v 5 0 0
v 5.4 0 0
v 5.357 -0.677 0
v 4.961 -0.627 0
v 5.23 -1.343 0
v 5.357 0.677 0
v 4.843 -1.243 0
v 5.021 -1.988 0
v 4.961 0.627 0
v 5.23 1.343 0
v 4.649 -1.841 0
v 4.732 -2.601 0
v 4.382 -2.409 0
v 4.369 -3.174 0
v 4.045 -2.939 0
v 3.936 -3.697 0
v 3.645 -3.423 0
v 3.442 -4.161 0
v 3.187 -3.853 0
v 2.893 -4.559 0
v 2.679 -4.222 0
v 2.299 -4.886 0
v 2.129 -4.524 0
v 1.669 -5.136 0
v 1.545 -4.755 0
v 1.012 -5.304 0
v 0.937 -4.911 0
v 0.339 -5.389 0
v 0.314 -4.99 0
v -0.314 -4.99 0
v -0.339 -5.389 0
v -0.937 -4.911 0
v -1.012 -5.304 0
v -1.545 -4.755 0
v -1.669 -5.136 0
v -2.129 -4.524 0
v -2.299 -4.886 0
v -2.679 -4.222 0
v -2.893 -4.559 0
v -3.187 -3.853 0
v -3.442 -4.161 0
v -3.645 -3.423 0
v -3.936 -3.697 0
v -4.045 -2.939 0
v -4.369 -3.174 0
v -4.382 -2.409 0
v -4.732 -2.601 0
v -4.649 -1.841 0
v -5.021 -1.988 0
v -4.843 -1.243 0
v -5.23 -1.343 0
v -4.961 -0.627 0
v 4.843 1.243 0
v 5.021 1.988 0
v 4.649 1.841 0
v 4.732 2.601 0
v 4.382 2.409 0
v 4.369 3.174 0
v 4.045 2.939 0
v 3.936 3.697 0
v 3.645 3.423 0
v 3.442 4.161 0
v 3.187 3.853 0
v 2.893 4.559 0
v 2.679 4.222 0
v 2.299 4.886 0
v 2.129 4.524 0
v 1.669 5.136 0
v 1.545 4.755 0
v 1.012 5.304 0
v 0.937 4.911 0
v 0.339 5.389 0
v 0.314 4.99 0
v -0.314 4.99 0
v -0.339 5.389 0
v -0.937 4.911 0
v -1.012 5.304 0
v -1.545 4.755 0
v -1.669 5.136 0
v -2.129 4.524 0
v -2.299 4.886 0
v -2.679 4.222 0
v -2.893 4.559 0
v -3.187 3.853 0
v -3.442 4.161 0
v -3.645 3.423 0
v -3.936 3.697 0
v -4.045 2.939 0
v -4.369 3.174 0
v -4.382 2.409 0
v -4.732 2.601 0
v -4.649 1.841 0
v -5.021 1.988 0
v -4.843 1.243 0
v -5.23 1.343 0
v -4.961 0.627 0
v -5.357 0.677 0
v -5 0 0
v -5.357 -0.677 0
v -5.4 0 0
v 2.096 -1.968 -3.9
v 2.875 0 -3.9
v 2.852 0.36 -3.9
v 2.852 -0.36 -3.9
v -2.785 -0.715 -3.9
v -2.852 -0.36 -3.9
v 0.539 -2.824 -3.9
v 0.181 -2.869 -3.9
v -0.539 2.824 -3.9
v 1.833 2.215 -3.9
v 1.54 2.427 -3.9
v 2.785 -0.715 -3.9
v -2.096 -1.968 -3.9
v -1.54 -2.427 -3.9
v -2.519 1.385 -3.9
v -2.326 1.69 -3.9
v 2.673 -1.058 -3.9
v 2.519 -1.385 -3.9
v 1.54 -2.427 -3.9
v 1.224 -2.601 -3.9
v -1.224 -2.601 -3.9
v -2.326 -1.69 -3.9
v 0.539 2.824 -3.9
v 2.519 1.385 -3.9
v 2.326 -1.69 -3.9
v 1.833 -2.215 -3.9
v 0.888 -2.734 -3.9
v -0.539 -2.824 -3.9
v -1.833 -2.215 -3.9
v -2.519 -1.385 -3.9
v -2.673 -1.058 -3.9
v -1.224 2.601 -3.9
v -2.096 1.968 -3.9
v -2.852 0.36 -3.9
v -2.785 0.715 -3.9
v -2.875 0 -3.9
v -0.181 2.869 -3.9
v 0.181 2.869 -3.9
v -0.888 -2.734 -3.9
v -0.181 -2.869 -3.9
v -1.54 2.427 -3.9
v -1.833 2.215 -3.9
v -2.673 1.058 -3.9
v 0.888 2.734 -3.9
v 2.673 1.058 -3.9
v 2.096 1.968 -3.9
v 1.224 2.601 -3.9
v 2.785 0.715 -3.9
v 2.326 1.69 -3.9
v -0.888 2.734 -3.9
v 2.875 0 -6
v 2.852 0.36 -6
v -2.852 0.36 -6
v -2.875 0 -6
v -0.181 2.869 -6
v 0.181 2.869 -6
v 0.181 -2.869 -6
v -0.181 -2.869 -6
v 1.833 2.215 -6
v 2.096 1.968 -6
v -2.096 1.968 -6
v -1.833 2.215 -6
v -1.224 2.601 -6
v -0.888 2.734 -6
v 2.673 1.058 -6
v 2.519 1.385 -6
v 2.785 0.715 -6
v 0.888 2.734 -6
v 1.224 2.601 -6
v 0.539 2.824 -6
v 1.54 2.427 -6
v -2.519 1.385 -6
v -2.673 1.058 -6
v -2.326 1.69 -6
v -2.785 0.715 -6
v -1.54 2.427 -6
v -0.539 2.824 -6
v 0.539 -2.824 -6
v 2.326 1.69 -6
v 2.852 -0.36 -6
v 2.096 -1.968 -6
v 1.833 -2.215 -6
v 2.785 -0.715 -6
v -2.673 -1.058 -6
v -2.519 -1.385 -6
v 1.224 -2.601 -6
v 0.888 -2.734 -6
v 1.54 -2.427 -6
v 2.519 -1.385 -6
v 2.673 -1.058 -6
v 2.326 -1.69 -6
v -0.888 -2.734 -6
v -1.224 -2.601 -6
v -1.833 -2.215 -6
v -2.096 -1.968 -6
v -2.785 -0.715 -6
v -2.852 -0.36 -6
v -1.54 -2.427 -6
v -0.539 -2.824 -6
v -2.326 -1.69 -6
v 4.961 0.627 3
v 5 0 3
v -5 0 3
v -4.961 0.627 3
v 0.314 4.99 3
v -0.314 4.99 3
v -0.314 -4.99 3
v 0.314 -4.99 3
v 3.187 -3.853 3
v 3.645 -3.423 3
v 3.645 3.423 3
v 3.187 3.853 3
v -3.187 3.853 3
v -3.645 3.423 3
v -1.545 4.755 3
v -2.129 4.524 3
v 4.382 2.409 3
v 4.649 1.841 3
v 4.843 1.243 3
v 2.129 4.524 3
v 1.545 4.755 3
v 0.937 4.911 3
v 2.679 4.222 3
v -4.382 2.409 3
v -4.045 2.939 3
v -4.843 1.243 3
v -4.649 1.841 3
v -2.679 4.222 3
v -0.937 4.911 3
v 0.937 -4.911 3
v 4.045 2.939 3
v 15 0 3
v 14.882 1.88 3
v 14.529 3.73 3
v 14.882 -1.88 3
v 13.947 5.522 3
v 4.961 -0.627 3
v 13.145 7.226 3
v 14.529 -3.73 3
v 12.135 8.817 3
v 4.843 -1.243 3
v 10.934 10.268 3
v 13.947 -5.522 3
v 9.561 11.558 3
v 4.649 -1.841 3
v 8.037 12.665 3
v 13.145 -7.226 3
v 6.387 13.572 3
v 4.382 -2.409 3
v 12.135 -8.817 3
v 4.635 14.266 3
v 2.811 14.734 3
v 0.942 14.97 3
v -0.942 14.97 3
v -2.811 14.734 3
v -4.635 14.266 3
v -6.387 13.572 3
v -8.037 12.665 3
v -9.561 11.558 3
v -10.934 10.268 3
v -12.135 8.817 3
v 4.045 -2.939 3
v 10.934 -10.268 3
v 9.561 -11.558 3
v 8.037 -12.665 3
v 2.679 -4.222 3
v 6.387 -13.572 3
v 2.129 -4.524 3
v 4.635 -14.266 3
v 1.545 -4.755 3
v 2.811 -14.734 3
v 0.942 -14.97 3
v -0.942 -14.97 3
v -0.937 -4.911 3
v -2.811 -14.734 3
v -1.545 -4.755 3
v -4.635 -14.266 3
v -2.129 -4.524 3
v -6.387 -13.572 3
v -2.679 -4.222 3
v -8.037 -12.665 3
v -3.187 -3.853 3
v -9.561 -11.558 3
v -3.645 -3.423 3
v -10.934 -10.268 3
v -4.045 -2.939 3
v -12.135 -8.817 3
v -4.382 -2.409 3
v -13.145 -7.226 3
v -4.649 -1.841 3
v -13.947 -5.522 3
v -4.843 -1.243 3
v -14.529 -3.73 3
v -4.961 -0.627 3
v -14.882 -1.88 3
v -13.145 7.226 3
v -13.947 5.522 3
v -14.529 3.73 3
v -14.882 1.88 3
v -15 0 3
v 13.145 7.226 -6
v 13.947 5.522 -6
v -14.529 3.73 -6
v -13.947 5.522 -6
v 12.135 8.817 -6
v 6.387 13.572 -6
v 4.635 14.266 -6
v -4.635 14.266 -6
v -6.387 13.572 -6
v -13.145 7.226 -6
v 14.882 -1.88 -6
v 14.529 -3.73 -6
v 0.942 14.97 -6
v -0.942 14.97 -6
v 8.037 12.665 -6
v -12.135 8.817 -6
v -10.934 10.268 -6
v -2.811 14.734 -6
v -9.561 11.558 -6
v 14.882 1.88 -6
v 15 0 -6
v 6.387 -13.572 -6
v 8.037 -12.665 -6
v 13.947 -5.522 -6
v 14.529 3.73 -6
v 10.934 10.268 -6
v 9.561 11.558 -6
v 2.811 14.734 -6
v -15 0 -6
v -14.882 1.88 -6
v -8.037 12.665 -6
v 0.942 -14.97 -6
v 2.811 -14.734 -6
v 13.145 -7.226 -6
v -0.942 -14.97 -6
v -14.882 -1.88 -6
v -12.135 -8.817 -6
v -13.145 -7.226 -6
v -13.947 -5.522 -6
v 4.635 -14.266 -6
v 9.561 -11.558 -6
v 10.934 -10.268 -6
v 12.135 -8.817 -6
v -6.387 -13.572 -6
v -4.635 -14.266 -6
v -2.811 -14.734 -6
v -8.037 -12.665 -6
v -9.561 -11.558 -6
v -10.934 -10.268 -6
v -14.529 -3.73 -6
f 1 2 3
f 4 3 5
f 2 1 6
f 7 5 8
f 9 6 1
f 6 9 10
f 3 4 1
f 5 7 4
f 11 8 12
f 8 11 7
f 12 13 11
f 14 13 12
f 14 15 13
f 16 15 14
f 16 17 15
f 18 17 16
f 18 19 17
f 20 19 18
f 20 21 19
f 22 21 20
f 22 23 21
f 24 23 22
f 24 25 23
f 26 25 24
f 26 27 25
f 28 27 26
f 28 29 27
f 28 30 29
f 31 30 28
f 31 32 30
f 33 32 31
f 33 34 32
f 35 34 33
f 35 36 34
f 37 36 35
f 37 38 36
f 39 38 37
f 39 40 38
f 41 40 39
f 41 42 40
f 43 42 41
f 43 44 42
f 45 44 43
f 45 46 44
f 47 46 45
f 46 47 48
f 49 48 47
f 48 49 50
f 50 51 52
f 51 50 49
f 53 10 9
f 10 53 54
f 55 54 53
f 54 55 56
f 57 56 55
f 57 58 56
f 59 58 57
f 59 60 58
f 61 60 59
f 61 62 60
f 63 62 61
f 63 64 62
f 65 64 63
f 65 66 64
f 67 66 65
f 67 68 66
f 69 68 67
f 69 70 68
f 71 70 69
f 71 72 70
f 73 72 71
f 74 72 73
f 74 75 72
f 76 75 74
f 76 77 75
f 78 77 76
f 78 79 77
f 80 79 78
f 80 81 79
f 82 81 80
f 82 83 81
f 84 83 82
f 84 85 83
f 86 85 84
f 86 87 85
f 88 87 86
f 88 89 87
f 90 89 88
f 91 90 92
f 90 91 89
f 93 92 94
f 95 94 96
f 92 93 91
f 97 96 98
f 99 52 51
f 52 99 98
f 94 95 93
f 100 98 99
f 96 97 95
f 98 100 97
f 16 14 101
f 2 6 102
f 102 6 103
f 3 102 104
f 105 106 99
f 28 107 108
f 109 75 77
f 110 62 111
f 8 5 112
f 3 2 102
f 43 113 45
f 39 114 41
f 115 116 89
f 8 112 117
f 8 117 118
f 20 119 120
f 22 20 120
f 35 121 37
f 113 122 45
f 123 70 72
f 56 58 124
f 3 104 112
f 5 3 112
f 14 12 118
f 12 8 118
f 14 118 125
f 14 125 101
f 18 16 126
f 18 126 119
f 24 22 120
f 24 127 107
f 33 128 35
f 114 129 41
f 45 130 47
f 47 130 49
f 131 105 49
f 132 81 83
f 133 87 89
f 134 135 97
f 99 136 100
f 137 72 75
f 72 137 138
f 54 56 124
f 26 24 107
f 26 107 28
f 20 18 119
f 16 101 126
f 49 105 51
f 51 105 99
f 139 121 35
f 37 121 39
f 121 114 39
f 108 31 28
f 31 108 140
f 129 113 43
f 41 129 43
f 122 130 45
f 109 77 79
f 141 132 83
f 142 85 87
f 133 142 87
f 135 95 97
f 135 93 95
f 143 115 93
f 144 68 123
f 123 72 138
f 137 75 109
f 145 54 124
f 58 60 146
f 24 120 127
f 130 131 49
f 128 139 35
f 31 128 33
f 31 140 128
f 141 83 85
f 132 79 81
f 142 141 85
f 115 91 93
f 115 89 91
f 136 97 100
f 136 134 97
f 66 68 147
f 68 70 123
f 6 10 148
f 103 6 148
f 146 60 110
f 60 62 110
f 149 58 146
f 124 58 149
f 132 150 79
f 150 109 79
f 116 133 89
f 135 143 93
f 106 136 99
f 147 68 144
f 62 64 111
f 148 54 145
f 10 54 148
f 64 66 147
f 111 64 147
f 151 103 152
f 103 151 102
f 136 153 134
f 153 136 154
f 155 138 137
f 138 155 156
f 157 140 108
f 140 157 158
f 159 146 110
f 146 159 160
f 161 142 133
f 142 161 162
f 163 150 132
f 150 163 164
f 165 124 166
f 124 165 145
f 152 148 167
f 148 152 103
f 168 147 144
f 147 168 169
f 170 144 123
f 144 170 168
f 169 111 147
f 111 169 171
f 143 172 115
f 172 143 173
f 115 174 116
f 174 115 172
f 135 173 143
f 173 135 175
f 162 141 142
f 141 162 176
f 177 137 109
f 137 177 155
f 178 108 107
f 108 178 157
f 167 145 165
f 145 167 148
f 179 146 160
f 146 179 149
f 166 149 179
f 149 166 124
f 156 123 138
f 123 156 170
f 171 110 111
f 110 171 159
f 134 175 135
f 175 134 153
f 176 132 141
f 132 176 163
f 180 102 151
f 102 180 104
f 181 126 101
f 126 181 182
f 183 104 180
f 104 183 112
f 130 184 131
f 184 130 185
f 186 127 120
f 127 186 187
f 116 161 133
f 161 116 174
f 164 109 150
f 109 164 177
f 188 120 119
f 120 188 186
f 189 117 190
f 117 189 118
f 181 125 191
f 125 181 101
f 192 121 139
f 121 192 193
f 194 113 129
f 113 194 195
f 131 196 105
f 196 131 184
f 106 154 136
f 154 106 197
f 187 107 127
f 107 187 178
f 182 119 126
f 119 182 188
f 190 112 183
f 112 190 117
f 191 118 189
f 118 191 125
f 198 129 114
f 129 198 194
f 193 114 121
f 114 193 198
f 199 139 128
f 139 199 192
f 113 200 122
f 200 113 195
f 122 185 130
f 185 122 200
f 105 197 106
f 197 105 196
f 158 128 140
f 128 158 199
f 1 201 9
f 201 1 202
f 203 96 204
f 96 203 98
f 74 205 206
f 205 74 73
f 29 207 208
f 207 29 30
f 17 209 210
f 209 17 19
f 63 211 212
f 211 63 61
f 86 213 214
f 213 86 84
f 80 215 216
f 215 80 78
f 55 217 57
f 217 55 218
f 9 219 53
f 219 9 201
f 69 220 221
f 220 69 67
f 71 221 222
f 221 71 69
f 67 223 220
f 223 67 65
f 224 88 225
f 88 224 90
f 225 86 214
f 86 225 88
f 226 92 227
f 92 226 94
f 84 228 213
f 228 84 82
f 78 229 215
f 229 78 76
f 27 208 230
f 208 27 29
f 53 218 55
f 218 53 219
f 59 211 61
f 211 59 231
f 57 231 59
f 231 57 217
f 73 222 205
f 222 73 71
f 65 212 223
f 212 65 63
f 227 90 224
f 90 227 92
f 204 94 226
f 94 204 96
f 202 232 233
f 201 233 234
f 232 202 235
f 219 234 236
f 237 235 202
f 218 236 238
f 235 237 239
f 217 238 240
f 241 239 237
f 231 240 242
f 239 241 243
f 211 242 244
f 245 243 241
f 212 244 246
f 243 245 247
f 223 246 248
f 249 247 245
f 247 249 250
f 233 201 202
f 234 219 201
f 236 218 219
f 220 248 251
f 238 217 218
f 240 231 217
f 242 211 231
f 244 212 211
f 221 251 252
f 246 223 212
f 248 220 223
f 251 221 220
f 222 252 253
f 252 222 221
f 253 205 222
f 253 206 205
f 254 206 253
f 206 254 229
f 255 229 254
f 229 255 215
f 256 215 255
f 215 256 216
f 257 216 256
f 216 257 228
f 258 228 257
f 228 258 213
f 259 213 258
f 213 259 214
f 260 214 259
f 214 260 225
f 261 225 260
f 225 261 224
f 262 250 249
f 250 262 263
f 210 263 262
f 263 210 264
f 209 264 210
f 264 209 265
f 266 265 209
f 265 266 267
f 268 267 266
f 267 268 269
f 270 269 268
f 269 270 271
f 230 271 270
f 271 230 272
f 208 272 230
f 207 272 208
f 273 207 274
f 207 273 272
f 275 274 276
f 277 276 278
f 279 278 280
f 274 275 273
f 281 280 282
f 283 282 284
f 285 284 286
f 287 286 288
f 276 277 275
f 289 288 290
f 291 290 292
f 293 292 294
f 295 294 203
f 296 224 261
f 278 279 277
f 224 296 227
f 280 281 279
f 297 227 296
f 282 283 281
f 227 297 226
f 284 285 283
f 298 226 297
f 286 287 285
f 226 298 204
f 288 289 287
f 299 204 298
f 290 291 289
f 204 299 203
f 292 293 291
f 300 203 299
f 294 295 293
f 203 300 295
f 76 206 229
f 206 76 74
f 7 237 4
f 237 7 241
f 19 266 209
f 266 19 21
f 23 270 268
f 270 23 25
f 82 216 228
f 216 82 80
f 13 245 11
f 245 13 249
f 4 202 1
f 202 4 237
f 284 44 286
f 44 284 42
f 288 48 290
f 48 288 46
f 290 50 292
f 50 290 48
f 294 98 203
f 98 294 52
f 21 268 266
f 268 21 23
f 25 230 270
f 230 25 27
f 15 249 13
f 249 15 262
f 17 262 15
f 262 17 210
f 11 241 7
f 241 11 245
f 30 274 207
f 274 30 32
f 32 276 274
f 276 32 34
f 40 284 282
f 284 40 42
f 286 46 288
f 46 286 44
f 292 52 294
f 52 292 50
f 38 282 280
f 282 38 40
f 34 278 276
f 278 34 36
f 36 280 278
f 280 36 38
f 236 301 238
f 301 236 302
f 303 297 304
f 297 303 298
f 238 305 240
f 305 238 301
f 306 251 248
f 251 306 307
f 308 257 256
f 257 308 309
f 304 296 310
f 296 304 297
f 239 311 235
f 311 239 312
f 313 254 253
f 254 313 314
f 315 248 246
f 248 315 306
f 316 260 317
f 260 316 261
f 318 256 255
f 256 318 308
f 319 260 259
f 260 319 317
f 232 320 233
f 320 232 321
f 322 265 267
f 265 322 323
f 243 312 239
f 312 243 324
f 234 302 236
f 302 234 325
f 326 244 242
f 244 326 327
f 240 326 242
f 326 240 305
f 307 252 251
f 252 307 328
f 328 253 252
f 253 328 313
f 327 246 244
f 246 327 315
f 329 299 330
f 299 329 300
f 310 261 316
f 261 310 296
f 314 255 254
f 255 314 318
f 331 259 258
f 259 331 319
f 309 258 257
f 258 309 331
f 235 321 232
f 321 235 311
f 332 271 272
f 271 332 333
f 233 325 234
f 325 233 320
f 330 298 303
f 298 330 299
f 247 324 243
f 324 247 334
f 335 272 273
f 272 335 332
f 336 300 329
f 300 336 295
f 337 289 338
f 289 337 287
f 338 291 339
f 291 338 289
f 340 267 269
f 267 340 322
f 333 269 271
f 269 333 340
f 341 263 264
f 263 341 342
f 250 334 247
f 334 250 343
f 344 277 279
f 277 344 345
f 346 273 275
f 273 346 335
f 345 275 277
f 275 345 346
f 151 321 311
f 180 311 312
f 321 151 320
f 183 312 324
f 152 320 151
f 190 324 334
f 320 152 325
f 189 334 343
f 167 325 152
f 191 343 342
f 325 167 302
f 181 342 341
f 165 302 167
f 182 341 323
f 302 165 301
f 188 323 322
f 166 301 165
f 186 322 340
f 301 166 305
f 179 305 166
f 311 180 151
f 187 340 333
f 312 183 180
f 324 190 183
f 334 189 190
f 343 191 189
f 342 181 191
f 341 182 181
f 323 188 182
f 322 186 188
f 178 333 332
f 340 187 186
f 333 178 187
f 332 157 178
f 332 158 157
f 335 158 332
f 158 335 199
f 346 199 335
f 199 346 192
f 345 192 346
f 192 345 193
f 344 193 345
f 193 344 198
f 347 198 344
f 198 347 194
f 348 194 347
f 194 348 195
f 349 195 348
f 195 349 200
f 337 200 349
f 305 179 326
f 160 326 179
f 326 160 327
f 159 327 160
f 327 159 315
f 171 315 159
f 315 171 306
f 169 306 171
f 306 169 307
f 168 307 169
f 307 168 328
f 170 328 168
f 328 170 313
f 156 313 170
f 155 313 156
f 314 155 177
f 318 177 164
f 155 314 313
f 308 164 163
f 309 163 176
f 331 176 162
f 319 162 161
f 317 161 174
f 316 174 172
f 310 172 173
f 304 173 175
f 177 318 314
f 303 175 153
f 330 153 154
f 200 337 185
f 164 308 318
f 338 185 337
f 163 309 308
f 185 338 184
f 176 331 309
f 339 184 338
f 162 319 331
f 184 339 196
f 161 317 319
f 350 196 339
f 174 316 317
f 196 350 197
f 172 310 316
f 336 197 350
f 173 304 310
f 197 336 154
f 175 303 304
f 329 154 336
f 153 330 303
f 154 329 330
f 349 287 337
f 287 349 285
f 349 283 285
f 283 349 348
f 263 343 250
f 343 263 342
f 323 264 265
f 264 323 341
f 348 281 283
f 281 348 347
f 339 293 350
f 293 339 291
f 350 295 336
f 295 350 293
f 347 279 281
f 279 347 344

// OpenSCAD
$fn = 50;


difference() {
	union() {
		translate(v = [0, 0, -6.0000000000]) {
			cylinder(h = 9, r = 15.0000000000);
		}
	}
	union() {
		translate(v = [0, 0, 0]) {
			rotate(a = [0, 0, 0]) {
				difference() {
					union() {
						translate(v = [0, 0, -9.0000000000]) {
							cylinder(h = 9, r = 2.6000000000);
						}
						translate(v = [0, 0, -3.9000000000]) {
							cylinder(h = 3.9000000000, r1 = 2.8750000000, r2 = 5.4000000000);
						}
						translate(v = [0, 0, -9.0000000000]) {
							cylinder(h = 9, r = 2.8750000000);
						}
						translate(v = [0, 0, -9.0000000000]) {
							cylinder(h = 9, r = 2.6000000000);
						}
					}
					union();
				}
			}
		}
		#cylinder(h = 3, r = 5.0000000000);
	}
}
